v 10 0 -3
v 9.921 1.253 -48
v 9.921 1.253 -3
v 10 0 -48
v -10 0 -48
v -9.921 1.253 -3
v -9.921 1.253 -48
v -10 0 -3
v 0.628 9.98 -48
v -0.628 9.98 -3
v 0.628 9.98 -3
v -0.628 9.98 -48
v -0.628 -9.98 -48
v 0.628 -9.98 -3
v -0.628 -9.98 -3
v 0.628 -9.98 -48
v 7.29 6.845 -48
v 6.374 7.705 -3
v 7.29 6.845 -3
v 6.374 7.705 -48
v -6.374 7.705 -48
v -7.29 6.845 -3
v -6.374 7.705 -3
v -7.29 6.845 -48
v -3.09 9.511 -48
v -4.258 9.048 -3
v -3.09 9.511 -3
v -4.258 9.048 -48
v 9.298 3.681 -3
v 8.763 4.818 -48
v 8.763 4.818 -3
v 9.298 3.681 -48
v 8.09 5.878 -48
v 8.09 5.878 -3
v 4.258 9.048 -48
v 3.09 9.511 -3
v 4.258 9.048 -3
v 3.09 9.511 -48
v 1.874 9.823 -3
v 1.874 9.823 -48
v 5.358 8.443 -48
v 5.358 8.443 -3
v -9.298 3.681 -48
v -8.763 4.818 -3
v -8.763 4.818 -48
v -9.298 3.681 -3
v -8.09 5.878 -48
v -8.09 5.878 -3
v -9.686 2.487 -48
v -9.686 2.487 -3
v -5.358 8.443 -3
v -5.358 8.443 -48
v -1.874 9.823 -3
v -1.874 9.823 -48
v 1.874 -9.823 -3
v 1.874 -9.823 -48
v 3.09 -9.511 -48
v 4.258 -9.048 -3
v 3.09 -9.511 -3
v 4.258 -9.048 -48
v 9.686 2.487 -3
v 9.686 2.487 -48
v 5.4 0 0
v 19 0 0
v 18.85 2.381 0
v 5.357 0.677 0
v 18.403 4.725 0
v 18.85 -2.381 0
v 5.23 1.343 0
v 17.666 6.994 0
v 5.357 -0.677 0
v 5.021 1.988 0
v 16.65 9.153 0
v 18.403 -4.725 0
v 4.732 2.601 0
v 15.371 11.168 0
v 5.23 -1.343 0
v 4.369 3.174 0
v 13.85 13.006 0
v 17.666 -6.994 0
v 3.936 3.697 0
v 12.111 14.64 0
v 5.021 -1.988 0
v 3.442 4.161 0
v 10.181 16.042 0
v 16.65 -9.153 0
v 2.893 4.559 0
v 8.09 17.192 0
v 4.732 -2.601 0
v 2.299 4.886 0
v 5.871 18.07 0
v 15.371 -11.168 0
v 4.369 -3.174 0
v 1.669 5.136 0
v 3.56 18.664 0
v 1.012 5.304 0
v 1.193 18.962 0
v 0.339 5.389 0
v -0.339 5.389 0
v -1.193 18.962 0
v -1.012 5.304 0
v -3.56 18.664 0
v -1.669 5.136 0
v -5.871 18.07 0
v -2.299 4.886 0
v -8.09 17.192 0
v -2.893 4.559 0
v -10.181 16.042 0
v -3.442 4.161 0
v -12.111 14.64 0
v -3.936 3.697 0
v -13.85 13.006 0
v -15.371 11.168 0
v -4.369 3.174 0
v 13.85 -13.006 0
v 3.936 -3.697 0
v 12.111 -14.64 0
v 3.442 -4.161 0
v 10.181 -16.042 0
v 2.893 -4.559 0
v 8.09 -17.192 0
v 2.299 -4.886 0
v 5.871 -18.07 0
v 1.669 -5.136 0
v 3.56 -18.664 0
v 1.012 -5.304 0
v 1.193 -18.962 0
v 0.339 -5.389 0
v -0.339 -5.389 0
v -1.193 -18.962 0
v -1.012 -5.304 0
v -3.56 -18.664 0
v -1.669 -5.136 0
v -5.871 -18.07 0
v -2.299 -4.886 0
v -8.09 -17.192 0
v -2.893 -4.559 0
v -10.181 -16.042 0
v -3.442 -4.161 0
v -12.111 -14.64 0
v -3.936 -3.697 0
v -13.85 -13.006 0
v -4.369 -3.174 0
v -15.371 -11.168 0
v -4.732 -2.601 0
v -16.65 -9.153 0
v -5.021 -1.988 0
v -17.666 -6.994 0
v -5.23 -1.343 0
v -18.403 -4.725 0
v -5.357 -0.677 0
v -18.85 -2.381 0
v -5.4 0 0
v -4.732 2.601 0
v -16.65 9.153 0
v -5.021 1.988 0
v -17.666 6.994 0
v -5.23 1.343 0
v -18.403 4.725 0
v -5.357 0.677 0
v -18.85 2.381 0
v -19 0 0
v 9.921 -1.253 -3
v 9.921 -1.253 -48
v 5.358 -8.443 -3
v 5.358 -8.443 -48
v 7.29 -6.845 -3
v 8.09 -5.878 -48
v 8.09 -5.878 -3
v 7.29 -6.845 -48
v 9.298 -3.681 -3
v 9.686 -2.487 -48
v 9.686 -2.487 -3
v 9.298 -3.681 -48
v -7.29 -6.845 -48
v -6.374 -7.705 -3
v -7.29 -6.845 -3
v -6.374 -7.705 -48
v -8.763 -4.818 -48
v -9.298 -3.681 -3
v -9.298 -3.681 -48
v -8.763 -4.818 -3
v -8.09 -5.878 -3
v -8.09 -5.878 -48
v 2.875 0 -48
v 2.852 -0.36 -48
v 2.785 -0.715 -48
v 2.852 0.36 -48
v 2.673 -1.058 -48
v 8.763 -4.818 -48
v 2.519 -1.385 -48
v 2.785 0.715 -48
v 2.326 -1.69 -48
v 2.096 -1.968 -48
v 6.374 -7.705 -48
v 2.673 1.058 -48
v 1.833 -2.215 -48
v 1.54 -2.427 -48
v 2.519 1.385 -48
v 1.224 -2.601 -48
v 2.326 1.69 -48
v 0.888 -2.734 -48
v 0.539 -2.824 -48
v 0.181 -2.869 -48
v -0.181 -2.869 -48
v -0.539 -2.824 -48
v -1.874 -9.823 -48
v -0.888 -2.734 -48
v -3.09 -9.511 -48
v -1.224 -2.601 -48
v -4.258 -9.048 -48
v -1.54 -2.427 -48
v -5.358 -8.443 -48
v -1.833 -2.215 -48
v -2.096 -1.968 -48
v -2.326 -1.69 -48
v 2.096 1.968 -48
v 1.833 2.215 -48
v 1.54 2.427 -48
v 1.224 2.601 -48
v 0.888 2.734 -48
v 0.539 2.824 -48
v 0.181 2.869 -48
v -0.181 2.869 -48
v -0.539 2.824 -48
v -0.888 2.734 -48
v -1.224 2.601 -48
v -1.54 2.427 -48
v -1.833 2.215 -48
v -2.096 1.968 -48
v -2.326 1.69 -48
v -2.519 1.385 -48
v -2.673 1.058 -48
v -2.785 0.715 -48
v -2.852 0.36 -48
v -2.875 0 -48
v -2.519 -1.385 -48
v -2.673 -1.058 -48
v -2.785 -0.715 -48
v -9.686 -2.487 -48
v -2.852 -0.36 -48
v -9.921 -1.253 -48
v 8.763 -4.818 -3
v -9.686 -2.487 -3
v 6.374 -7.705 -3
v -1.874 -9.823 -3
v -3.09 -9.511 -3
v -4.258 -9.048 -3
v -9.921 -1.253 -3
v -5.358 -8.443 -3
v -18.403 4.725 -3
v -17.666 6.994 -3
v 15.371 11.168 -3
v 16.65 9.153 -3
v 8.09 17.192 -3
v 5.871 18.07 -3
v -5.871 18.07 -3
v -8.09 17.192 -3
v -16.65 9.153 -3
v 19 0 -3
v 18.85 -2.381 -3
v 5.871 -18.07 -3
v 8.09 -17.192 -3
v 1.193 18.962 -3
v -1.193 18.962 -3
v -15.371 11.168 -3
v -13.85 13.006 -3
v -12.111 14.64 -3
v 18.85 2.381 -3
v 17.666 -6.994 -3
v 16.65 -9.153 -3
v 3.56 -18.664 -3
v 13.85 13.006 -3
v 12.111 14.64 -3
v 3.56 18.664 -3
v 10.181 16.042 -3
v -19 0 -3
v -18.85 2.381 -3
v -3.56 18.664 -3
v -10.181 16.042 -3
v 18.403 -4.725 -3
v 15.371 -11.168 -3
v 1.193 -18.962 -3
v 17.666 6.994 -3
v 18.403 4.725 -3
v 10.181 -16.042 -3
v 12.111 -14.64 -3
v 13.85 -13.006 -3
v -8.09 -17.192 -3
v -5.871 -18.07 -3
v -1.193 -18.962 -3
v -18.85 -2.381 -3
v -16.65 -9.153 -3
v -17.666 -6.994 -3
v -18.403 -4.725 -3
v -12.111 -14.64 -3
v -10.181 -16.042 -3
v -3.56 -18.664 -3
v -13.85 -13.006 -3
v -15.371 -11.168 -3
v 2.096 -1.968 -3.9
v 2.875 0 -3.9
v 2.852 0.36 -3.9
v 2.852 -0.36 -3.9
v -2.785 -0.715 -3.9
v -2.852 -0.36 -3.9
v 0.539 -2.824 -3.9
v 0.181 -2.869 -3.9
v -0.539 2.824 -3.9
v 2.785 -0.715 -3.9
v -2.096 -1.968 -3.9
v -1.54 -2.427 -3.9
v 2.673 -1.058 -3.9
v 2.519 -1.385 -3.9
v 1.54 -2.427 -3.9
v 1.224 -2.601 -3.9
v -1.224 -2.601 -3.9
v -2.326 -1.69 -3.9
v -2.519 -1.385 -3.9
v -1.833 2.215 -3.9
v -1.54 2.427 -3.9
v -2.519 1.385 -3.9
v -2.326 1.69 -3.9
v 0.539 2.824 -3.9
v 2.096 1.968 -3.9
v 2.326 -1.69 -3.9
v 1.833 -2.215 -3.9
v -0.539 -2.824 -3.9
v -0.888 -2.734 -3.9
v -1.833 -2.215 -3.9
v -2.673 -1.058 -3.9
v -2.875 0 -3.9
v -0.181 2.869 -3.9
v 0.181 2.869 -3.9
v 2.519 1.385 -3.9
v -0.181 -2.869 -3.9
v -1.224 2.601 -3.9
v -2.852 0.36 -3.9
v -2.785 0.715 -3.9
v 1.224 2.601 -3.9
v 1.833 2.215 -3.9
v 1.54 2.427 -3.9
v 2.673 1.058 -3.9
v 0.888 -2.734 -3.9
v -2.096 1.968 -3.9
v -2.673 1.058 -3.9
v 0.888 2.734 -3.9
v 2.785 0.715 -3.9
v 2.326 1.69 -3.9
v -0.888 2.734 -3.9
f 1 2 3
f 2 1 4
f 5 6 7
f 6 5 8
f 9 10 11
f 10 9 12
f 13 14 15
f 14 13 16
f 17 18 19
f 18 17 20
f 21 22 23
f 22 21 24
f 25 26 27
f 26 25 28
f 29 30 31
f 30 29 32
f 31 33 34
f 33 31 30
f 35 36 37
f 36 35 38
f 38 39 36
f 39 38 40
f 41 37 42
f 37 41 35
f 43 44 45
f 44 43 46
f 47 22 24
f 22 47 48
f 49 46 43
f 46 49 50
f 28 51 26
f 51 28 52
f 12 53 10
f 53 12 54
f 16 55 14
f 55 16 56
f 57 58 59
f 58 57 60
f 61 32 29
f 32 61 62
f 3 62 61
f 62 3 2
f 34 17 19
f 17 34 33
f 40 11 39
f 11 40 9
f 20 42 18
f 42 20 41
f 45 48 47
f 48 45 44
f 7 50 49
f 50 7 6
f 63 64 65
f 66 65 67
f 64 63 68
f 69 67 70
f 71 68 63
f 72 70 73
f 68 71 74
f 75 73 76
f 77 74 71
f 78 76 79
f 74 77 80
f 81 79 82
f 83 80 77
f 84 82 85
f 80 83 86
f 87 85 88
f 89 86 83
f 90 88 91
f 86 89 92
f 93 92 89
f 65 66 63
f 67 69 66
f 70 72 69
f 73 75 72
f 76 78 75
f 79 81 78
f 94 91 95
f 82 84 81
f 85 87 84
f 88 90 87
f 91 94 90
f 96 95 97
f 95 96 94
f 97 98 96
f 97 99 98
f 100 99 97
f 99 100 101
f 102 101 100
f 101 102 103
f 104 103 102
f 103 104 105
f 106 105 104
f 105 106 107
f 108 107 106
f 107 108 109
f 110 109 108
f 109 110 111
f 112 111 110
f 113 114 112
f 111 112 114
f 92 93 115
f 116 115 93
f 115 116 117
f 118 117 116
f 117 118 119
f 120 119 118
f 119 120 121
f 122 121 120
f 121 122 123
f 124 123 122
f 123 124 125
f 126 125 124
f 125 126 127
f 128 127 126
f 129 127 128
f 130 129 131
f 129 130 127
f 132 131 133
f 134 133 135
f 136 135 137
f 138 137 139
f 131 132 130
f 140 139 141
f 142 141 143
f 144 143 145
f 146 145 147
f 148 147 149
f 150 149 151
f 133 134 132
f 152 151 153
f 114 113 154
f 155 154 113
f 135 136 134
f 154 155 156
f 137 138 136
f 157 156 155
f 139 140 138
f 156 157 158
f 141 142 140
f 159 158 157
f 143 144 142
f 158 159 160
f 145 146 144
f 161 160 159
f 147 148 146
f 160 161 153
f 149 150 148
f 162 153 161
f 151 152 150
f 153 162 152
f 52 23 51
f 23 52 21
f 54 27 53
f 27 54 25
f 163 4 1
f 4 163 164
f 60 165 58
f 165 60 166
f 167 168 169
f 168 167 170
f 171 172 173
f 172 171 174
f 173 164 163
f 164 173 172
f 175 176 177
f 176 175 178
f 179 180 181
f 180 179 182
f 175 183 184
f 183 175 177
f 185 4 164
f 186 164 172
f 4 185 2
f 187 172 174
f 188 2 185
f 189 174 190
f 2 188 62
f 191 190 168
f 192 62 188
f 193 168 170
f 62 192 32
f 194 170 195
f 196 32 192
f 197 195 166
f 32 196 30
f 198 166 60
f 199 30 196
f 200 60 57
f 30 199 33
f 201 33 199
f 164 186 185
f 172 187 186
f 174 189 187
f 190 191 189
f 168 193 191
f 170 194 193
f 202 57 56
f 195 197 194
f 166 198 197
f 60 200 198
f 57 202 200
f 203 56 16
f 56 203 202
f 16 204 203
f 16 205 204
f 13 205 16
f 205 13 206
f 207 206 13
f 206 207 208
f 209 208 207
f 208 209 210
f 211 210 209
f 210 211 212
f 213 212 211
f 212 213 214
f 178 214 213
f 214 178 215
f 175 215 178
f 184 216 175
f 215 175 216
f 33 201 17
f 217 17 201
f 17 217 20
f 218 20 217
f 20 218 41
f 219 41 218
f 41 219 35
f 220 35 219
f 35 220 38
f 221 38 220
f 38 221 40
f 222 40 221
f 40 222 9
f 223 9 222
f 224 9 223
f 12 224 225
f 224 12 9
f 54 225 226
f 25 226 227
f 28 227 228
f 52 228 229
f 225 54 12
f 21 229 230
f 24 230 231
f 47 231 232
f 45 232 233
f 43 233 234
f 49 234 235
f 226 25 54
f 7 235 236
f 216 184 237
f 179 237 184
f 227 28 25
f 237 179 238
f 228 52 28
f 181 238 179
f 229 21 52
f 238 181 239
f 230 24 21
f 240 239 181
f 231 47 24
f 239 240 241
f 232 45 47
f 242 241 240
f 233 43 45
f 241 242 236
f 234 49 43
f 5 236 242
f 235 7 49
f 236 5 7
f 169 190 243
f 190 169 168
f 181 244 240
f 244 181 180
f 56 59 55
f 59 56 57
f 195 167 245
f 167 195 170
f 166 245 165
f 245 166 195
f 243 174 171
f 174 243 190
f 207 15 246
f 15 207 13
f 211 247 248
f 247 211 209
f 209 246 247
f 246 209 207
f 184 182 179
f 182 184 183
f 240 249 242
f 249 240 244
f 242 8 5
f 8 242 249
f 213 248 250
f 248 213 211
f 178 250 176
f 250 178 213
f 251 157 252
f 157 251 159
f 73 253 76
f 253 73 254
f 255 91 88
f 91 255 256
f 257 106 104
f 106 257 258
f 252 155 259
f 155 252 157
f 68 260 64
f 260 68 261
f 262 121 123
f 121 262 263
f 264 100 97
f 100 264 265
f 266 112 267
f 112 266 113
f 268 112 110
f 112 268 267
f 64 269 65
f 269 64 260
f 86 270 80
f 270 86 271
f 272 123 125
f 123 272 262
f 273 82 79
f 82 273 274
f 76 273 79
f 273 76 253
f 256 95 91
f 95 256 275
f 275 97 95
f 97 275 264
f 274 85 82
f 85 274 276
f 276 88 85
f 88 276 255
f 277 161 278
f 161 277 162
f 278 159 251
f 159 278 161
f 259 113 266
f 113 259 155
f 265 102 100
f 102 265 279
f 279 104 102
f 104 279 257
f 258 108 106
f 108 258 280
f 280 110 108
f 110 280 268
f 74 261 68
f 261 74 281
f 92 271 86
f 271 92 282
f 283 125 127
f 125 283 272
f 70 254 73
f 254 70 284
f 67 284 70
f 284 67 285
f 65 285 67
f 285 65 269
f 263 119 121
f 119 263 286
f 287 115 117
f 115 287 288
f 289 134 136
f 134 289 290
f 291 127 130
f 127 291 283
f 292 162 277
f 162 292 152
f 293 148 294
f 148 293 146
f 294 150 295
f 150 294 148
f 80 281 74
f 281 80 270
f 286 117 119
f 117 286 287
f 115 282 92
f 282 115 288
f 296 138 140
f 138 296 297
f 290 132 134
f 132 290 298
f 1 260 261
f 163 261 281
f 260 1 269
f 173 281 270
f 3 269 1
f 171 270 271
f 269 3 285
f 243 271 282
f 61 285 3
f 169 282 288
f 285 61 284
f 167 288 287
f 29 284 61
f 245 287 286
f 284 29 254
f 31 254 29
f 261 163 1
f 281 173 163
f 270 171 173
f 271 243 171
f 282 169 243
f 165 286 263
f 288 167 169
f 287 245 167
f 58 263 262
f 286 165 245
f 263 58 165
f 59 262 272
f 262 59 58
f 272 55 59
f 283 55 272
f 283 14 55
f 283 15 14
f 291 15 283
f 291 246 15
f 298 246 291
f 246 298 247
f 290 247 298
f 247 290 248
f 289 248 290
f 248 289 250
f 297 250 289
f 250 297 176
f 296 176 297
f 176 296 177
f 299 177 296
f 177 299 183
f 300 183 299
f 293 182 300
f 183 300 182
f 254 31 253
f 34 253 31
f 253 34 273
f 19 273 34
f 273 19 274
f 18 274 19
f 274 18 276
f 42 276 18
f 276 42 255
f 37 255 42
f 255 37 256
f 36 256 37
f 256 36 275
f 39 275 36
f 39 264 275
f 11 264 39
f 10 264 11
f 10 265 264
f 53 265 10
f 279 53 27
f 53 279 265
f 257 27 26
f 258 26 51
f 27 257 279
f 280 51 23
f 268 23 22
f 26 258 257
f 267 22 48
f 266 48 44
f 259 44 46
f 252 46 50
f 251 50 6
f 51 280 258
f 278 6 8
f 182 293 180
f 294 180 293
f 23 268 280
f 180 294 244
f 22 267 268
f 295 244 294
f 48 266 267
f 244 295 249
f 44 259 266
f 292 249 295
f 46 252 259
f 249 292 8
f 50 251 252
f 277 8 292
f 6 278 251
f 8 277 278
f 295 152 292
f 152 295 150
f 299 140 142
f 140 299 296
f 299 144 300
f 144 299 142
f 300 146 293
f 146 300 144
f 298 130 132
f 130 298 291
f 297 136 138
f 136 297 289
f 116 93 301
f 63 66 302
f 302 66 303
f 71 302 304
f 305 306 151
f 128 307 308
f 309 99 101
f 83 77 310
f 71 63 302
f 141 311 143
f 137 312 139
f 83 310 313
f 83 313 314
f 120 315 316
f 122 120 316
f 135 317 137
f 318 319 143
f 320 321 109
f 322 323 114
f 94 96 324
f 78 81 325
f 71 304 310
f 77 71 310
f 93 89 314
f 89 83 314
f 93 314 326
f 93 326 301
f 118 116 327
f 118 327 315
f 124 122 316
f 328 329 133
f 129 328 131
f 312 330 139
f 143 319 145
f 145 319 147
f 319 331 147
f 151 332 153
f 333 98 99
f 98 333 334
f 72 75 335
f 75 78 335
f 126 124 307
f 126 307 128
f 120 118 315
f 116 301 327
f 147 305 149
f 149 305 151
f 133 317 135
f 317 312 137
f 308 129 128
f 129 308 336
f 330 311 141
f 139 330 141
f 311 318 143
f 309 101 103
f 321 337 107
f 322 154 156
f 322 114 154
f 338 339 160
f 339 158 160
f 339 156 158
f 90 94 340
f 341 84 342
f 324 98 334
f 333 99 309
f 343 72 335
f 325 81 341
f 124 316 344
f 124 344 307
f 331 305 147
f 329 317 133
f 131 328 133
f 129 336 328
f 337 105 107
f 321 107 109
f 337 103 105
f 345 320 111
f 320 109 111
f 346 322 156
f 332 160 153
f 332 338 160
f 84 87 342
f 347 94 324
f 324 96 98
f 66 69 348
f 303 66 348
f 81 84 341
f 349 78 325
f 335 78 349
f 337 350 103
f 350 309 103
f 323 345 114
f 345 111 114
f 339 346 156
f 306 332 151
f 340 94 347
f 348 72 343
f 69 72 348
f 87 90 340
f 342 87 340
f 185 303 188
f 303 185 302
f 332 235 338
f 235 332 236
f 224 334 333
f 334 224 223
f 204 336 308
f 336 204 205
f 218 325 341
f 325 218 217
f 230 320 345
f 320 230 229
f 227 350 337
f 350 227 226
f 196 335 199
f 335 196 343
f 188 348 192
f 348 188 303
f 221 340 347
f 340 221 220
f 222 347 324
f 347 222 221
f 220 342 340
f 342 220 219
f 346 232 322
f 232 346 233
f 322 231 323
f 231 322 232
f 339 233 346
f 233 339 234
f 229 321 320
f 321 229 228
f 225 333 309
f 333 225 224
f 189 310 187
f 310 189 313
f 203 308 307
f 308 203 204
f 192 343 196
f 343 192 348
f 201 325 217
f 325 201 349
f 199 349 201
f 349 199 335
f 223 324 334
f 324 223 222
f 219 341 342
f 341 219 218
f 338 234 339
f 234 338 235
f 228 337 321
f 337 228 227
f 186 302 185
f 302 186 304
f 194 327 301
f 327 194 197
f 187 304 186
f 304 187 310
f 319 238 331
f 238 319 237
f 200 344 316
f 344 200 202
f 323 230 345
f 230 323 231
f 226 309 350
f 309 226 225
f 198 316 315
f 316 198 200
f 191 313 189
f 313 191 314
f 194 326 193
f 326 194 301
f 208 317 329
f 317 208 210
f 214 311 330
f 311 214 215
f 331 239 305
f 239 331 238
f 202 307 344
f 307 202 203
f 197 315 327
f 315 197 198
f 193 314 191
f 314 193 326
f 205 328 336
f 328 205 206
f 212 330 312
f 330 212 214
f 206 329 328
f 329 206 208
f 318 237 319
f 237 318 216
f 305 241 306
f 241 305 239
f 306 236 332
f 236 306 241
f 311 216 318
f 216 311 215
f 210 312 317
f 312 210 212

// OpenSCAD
$fn = 50;


difference() {
	union() {
		translate(v = [0, 0, -48.0000000000]) {
			cylinder(h = 48, r = 10.0000000000);
		}
		translate(v = [0, 0, -3.0000000000]) {
			cylinder(h = 3, r = 19.0000000000);
		}
	}
	union() {
		translate(v = [0, 0, 0]) {
			rotate(a = [0, 0, 0]) {
				difference() {
					union() {
						#translate(v = [0, 0, -48.0000000000]) {
							cylinder(h = 48, r = 2.6000000000);
						}
						#translate(v = [0, 0, -3.9000000000]) {
							cylinder(h = 3.9000000000, r = 10.0000000000, r1 = 2.8750000000, r2 = 5.4000000000);
						}
						#translate(v = [0, 0, -48.0000000000]) {
							cylinder(h = 48, r = 2.8750000000);
						}
						#translate(v = [0, 0, -48.0000000000]) {
							cylinder(h = 48, r = 2.6000000000);
						}
					}
					union();
				}
			}
		}
	}
}
